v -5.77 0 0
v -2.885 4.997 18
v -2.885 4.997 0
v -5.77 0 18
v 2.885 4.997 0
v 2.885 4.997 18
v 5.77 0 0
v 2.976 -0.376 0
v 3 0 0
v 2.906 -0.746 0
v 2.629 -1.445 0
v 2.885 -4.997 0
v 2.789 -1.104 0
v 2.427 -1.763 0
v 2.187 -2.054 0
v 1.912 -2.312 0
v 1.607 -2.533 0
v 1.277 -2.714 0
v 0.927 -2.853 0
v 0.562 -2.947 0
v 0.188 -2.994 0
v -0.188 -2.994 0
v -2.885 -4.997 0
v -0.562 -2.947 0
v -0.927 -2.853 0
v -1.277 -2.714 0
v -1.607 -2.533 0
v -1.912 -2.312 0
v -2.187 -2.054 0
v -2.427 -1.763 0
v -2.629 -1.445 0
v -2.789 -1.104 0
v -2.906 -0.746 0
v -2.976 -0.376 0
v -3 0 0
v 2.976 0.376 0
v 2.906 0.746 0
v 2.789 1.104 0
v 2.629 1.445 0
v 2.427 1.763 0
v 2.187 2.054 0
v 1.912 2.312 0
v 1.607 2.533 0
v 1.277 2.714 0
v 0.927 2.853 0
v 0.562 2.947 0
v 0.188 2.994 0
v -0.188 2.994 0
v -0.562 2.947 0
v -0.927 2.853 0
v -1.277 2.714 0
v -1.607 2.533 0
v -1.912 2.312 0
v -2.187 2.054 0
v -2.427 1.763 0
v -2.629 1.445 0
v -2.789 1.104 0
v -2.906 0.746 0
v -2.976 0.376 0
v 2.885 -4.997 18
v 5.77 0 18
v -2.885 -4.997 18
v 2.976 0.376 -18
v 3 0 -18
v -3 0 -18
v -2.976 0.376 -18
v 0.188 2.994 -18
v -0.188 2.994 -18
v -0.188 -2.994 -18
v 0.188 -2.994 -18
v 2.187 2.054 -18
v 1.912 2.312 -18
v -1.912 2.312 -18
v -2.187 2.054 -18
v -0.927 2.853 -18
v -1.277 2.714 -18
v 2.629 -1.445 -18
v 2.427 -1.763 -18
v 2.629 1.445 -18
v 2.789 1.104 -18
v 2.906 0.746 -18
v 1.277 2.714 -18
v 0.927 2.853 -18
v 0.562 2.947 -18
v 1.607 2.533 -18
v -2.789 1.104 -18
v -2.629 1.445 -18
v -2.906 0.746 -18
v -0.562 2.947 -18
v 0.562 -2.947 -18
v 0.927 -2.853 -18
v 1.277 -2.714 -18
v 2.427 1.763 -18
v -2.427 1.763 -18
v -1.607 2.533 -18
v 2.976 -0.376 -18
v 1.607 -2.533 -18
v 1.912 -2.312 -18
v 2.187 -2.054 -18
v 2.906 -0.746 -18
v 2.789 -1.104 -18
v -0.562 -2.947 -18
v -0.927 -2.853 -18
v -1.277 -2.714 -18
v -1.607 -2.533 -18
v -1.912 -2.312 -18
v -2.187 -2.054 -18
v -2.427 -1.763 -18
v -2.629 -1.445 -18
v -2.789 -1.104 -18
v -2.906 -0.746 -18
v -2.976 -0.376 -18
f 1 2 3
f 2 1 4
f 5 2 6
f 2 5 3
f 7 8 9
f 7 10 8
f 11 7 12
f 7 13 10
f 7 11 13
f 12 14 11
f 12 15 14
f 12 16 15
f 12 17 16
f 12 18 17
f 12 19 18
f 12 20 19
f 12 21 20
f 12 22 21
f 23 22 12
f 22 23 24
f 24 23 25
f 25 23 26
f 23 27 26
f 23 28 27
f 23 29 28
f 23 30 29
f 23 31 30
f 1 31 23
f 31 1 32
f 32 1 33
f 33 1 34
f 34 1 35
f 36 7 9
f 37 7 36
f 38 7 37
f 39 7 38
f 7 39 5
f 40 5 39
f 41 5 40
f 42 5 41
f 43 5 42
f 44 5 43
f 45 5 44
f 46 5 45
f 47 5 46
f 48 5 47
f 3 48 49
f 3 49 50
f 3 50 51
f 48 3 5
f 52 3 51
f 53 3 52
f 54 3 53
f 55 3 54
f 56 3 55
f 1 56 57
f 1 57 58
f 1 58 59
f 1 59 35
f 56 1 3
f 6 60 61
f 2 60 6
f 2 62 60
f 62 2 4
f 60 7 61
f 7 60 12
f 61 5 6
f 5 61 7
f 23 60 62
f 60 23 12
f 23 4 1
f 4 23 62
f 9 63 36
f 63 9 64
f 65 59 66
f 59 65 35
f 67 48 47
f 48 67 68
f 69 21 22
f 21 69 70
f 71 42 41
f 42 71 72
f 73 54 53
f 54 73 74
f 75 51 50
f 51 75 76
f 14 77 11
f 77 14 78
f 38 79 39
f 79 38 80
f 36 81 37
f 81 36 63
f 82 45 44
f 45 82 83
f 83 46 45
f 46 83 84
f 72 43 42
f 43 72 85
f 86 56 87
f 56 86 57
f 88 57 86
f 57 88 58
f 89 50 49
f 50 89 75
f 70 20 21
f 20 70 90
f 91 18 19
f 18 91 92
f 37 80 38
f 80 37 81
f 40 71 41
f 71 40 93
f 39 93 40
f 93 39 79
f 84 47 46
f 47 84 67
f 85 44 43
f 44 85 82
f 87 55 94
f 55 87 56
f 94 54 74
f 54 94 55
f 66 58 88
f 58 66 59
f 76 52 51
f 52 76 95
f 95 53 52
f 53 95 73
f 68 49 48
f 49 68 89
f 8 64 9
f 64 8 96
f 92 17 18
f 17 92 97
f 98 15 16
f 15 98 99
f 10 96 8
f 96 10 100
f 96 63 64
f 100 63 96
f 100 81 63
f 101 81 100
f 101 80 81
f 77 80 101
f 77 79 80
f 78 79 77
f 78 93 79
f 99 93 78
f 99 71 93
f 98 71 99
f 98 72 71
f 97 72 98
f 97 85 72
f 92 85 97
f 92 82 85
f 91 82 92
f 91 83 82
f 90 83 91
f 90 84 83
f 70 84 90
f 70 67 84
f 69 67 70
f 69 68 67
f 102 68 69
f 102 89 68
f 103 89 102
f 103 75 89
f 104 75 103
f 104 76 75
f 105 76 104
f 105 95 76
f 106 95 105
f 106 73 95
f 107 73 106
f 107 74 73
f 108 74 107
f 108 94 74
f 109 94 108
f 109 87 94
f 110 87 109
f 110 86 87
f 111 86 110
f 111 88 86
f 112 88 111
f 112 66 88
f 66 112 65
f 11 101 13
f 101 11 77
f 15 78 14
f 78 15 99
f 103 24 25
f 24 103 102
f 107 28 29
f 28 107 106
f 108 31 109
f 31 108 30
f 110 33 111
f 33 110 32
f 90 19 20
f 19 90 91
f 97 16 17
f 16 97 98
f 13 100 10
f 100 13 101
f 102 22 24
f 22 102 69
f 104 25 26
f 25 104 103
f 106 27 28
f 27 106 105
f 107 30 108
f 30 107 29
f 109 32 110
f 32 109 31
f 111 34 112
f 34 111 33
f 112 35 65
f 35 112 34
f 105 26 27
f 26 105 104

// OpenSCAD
$fn = 50;


difference() {
	union() {
		translate(v = [0, 0, 0]) {
			rotate(a = [0, 0, 0]) {
				translate(v = [0, 0, 0]) {
					rotate(a = [0, 0, 0]) {
						linear_extrude(height = 18) {
							polygon(points = [[5.7700000000, 0.0000000000], [2.8850000000, 4.9969665798], [-2.8850000000, 4.9969665798], [-5.7700000000, 0.0000000000], [-2.8850000000, -4.9969665798], [2.8850000000, -4.9969665798]]);
						}
					}
				}
			}
		}
		translate(v = [0, 0, -18]) {
			rotate(a = [0, 0, 0]) {
				cylinder(h = 18, r = 3.0000000000);
			}
		}
	}
	union();
}
